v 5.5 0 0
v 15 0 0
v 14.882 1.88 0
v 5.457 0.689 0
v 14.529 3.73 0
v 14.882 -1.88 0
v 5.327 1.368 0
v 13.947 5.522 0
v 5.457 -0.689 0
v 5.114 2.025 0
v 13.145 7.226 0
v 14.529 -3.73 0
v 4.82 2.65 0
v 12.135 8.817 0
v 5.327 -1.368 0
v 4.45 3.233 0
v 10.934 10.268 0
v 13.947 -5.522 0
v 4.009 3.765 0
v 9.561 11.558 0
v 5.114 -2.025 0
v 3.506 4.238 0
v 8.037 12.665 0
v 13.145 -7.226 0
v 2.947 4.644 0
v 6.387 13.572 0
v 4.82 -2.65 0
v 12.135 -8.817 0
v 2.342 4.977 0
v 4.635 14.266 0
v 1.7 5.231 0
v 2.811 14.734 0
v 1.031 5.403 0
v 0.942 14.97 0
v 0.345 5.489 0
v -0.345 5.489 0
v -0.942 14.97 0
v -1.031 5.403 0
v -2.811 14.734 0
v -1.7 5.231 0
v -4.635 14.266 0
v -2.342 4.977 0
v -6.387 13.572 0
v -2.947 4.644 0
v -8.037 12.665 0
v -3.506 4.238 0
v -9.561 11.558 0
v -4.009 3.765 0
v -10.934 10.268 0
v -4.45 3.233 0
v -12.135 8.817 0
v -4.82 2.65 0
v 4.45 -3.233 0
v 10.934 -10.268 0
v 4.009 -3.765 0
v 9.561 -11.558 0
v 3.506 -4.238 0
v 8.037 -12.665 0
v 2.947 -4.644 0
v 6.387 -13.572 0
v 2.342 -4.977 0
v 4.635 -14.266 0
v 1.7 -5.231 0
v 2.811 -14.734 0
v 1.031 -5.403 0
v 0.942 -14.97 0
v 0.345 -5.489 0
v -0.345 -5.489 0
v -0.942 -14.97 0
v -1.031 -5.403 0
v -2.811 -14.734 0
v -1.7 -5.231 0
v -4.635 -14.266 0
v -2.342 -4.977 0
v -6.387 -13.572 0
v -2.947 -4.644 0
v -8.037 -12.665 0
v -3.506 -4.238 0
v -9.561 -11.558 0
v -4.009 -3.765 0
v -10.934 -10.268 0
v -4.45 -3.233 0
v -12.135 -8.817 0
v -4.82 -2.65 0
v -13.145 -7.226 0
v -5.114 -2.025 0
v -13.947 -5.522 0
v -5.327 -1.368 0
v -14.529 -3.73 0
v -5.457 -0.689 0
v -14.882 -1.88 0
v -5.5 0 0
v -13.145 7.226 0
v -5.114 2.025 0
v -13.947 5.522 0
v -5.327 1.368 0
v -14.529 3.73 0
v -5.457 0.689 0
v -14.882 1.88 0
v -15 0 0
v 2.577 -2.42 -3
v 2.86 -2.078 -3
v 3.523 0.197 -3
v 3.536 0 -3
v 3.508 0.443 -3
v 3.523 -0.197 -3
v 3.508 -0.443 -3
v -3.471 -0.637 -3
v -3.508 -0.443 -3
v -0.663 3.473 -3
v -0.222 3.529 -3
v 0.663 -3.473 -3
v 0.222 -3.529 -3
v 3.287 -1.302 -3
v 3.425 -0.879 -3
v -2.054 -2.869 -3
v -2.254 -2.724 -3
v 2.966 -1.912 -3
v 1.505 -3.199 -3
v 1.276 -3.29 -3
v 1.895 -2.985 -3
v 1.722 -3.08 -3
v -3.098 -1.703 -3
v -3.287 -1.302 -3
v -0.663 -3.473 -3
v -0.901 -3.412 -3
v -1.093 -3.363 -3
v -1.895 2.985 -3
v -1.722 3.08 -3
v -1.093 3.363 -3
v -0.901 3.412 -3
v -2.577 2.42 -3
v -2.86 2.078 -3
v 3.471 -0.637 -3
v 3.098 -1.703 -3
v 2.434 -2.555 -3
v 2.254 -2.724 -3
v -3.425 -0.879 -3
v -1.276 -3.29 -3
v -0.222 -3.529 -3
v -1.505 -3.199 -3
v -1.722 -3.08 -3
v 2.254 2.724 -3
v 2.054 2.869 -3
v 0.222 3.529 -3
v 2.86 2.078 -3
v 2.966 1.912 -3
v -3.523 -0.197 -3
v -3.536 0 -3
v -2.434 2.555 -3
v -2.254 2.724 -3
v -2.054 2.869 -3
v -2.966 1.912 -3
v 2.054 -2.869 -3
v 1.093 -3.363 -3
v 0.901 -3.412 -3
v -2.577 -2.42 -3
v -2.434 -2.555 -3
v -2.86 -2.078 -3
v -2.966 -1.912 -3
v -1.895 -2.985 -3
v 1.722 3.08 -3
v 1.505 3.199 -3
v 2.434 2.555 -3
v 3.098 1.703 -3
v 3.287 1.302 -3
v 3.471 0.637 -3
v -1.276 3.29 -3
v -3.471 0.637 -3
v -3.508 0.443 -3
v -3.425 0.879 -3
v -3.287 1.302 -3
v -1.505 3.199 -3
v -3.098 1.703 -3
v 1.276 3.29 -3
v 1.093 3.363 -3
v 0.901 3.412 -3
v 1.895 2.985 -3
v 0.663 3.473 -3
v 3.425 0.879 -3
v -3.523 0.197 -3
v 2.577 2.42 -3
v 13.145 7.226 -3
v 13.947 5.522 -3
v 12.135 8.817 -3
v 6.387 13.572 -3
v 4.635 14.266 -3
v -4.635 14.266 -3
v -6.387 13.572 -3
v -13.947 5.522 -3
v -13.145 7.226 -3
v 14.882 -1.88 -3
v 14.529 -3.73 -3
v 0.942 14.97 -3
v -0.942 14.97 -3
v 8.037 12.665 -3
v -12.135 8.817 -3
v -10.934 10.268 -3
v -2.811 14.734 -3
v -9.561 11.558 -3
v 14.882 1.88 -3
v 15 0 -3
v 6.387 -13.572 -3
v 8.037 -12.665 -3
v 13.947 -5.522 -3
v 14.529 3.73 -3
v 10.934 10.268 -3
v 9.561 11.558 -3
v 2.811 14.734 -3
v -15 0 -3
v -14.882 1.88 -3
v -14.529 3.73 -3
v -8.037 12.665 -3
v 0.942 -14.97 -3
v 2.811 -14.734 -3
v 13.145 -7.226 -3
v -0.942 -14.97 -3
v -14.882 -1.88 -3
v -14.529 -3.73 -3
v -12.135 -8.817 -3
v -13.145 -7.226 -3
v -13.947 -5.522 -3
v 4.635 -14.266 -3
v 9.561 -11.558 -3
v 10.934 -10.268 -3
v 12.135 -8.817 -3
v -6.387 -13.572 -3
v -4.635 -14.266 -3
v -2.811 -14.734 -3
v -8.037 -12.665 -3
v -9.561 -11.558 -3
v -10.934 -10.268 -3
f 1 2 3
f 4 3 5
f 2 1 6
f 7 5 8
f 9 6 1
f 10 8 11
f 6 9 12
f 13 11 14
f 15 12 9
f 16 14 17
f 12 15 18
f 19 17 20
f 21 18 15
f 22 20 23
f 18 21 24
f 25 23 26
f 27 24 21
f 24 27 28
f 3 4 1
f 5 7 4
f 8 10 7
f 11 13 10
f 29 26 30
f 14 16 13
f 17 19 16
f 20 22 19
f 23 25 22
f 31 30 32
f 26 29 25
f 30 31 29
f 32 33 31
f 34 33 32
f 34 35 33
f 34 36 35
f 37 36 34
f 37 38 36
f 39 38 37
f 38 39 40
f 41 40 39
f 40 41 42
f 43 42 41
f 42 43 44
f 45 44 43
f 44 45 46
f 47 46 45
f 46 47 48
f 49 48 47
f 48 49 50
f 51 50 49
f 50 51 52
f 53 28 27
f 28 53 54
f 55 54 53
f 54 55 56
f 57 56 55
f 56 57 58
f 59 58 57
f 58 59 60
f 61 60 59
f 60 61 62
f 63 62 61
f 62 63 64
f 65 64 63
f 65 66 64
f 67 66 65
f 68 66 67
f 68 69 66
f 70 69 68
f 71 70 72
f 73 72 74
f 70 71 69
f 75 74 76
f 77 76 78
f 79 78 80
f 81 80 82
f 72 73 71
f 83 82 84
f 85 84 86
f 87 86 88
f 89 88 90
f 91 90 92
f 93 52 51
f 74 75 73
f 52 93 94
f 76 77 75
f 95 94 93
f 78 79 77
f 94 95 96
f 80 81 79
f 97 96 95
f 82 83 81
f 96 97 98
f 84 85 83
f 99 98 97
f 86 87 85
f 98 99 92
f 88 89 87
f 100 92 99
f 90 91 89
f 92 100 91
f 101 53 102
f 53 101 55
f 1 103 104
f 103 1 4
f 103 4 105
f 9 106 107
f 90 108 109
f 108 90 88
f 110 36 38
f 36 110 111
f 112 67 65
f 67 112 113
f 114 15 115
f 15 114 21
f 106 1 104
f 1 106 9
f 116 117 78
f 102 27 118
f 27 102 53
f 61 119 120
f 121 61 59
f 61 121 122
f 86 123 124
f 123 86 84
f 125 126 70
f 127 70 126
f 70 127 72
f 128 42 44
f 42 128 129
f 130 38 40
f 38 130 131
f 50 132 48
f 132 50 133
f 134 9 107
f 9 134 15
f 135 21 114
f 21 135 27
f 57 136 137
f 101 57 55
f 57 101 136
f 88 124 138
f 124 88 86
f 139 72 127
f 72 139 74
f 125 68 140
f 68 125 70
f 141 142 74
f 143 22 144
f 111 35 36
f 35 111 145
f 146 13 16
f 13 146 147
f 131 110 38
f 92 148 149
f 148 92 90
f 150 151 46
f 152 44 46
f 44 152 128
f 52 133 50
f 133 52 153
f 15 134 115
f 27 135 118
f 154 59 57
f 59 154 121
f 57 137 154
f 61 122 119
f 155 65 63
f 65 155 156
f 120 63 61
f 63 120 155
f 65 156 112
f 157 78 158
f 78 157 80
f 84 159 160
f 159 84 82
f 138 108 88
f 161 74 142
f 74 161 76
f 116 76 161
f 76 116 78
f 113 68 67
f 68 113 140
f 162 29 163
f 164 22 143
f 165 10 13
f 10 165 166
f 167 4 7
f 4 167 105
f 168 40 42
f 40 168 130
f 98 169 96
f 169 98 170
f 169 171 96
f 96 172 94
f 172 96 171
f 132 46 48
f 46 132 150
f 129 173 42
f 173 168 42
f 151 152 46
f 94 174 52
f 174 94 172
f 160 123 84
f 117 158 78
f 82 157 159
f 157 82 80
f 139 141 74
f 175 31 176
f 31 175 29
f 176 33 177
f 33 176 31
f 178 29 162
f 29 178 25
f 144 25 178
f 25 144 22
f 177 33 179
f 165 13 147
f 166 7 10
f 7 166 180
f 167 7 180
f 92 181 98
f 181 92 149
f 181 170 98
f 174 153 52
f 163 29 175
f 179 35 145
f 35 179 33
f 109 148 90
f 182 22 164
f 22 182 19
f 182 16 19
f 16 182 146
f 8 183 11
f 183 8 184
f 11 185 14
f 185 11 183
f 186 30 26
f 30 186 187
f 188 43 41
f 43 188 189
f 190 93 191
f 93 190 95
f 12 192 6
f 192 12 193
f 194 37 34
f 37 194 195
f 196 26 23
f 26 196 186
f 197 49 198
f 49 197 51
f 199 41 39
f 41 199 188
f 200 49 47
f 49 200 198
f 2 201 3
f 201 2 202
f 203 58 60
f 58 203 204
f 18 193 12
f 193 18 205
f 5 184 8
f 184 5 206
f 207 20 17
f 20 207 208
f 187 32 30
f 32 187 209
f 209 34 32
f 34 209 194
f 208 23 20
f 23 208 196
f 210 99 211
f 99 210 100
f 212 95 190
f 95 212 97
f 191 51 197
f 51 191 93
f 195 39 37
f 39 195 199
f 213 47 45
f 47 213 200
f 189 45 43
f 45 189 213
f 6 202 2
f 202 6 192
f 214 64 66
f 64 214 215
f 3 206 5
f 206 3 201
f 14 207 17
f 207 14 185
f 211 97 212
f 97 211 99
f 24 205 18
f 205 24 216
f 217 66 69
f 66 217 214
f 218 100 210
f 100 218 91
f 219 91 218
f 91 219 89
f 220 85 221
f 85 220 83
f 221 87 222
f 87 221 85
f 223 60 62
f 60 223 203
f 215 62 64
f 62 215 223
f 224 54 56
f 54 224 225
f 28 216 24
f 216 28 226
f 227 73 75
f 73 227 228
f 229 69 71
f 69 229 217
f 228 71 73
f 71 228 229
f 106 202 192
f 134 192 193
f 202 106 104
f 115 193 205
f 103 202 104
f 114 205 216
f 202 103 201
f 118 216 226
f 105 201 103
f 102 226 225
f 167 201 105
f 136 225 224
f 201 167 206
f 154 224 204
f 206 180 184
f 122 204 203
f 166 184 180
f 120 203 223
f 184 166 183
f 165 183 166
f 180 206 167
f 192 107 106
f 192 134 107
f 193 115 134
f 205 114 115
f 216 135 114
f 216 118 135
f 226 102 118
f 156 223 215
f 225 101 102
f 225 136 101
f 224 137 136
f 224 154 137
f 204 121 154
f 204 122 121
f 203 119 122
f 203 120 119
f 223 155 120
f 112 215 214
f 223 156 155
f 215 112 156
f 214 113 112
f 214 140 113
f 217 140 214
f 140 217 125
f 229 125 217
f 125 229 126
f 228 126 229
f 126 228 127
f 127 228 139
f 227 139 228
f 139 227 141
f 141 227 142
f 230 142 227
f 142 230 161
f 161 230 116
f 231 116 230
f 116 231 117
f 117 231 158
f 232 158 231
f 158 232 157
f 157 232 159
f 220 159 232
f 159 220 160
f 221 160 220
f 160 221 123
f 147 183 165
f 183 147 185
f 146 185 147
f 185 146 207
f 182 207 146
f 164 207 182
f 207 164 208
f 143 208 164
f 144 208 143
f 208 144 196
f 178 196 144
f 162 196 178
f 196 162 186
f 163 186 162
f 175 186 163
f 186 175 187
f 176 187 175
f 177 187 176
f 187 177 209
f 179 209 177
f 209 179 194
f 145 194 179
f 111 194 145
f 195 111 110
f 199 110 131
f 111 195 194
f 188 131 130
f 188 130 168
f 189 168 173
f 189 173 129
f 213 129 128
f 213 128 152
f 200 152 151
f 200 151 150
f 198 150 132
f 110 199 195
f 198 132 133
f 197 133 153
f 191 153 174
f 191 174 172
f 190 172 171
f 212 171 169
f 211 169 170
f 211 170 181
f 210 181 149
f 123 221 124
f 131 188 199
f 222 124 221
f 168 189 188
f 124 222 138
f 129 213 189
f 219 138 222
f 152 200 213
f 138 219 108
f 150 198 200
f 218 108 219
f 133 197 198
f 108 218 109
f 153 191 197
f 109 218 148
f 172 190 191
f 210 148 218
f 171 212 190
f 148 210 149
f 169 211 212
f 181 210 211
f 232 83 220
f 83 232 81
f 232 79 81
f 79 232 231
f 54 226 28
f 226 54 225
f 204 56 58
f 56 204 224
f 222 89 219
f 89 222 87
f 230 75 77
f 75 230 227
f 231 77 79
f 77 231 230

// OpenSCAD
$fn = 50;

difference() {
	union() {
		translate(v = [0, 0, -3.0]) {
			cylinder(h = 3, r = 15.0);
		}
	}
	union() {
		translate(v = [0, 0, 0]) {
			rotate(a = [0, 0, 0]) {
				difference() {
					union() {
						translate(v = [0, 0, -6.0]) {
							cylinder(h = 6, r = 2.25);
						}
						translate(v = [0, 0, -4.2]) {
							cylinder(h = 4.2, r1 = 2.75, r2 = 5.5);
						}
						translate(v = [0, 0, -6.0]) {
							cylinder(h = 6, r = 2.75);
						}
						translate(v = [0, 0, -6.0]) {
							cylinder(h = 6, r = 2.25);
						}
					}
					union();
				}
			}
		}
	}
}
